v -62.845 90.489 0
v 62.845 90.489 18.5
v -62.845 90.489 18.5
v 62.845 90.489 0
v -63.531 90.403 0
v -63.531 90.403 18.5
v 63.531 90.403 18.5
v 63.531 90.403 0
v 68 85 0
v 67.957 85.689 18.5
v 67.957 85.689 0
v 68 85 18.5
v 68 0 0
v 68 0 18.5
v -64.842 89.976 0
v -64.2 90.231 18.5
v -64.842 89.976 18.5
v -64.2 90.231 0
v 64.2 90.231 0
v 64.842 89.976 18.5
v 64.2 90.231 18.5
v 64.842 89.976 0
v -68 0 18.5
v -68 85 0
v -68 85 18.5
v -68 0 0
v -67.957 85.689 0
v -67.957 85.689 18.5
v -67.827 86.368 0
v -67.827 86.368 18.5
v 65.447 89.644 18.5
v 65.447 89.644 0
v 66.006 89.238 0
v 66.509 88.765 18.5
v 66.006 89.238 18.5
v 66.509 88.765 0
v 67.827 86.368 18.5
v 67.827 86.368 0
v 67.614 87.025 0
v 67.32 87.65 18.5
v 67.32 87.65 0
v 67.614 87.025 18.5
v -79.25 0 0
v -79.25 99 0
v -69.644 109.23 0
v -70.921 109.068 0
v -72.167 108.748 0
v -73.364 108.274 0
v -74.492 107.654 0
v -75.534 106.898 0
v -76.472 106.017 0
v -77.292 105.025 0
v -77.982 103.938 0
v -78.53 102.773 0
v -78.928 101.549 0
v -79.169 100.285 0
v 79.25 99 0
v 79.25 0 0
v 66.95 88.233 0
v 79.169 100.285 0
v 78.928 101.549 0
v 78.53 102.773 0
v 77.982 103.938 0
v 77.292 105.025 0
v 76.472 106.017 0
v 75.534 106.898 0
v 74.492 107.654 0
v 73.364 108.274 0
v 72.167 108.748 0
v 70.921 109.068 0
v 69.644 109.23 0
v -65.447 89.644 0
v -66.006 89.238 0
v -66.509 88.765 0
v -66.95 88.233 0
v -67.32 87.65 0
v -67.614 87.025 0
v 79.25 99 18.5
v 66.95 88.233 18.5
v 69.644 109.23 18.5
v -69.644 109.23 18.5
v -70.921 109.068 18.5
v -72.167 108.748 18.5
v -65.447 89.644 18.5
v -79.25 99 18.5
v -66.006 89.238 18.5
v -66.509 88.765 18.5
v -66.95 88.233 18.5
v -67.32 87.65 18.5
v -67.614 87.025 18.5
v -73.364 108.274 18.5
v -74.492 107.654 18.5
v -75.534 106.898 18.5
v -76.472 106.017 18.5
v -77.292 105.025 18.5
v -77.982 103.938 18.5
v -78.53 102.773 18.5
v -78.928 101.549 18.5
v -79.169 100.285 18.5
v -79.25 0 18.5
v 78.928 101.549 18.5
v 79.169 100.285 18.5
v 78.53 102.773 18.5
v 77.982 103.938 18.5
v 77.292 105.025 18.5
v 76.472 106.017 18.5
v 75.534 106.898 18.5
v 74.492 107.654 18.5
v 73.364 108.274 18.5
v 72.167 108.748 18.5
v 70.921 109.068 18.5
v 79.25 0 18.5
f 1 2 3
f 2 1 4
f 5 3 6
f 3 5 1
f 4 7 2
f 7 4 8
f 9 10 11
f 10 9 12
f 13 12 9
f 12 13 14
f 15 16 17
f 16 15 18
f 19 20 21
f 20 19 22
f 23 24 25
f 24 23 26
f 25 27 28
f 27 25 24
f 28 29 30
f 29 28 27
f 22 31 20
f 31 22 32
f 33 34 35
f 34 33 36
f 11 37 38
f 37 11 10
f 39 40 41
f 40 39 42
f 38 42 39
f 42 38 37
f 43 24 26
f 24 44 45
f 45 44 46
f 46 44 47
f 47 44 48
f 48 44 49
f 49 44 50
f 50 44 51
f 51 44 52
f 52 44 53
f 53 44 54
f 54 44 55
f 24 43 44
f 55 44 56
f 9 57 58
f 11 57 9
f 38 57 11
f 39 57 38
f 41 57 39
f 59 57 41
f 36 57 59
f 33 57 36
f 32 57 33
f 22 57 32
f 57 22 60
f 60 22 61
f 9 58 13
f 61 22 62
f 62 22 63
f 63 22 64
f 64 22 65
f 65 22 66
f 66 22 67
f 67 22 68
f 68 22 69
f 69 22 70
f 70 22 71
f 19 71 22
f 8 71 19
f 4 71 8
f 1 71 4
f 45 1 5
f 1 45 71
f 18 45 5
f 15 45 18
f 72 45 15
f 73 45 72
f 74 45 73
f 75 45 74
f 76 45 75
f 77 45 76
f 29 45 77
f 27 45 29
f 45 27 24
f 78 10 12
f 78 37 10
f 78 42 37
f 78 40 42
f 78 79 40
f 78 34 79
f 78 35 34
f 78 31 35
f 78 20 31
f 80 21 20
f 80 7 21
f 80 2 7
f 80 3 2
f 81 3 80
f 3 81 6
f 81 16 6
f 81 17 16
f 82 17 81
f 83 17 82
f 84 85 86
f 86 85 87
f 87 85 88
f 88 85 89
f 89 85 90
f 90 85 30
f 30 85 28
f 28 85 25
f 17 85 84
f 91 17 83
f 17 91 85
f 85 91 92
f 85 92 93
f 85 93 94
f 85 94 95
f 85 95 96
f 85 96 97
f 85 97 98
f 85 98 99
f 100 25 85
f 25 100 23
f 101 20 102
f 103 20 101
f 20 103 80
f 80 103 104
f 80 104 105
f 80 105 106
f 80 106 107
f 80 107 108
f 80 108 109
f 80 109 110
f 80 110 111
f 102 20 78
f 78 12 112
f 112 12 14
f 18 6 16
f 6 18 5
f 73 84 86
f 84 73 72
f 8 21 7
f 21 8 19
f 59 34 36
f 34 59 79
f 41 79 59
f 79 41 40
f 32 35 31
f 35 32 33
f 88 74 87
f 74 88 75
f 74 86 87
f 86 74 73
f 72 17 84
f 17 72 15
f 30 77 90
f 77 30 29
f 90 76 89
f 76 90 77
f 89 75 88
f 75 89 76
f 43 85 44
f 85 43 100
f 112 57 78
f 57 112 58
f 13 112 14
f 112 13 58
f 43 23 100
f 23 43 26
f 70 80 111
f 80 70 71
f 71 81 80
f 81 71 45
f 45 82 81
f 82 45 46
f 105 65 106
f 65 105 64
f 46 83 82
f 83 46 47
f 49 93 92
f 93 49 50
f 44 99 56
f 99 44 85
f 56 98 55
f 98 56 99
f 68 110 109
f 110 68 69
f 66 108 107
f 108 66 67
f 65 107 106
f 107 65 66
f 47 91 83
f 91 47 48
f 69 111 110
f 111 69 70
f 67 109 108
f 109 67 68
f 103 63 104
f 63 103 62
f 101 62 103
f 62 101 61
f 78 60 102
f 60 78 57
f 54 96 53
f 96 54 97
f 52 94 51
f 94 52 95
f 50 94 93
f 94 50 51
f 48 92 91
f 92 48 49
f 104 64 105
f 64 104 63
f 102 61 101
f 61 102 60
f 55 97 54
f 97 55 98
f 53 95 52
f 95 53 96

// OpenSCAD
$fn = 50;


difference() {
	union() {
		hull() {
			translate(v = [-69.0000000000, 99.0000000000, 0]) {
				cylinder(h = 18.5000000000, r = 10.2500000000);
			}
			translate(v = [69.0000000000, 99.0000000000, 0]) {
				cylinder(h = 18.5000000000, r = 10.2500000000);
			}
			translate(v = [-69.0000000000, -99.0000000000, 0]) {
				cylinder(h = 18.5000000000, r = 10.2500000000);
			}
			translate(v = [69.0000000000, -99.0000000000, 0]) {
				cylinder(h = 18.5000000000, r = 10.2500000000);
			}
		}
	}
	union() {
		hull() {
			translate(v = [-62.5000000000, 85.0000000000, 0]) {
				cylinder(h = 18.5000000000, r = 5.5000000000);
			}
			translate(v = [62.5000000000, 85.0000000000, 0]) {
				cylinder(h = 18.5000000000, r = 5.5000000000);
			}
			translate(v = [-62.5000000000, -85.0000000000, 0]) {
				cylinder(h = 18.5000000000, r = 5.5000000000);
			}
			translate(v = [62.5000000000, -85.0000000000, 0]) {
				cylinder(h = 18.5000000000, r = 5.5000000000);
			}
		}
		#translate(v = [-79.2500000000, -218.5000000000, 0]) {
			cube(size = [158.5000000000, 218.5000000000, 18.5000000000]);
		}
	}
}
